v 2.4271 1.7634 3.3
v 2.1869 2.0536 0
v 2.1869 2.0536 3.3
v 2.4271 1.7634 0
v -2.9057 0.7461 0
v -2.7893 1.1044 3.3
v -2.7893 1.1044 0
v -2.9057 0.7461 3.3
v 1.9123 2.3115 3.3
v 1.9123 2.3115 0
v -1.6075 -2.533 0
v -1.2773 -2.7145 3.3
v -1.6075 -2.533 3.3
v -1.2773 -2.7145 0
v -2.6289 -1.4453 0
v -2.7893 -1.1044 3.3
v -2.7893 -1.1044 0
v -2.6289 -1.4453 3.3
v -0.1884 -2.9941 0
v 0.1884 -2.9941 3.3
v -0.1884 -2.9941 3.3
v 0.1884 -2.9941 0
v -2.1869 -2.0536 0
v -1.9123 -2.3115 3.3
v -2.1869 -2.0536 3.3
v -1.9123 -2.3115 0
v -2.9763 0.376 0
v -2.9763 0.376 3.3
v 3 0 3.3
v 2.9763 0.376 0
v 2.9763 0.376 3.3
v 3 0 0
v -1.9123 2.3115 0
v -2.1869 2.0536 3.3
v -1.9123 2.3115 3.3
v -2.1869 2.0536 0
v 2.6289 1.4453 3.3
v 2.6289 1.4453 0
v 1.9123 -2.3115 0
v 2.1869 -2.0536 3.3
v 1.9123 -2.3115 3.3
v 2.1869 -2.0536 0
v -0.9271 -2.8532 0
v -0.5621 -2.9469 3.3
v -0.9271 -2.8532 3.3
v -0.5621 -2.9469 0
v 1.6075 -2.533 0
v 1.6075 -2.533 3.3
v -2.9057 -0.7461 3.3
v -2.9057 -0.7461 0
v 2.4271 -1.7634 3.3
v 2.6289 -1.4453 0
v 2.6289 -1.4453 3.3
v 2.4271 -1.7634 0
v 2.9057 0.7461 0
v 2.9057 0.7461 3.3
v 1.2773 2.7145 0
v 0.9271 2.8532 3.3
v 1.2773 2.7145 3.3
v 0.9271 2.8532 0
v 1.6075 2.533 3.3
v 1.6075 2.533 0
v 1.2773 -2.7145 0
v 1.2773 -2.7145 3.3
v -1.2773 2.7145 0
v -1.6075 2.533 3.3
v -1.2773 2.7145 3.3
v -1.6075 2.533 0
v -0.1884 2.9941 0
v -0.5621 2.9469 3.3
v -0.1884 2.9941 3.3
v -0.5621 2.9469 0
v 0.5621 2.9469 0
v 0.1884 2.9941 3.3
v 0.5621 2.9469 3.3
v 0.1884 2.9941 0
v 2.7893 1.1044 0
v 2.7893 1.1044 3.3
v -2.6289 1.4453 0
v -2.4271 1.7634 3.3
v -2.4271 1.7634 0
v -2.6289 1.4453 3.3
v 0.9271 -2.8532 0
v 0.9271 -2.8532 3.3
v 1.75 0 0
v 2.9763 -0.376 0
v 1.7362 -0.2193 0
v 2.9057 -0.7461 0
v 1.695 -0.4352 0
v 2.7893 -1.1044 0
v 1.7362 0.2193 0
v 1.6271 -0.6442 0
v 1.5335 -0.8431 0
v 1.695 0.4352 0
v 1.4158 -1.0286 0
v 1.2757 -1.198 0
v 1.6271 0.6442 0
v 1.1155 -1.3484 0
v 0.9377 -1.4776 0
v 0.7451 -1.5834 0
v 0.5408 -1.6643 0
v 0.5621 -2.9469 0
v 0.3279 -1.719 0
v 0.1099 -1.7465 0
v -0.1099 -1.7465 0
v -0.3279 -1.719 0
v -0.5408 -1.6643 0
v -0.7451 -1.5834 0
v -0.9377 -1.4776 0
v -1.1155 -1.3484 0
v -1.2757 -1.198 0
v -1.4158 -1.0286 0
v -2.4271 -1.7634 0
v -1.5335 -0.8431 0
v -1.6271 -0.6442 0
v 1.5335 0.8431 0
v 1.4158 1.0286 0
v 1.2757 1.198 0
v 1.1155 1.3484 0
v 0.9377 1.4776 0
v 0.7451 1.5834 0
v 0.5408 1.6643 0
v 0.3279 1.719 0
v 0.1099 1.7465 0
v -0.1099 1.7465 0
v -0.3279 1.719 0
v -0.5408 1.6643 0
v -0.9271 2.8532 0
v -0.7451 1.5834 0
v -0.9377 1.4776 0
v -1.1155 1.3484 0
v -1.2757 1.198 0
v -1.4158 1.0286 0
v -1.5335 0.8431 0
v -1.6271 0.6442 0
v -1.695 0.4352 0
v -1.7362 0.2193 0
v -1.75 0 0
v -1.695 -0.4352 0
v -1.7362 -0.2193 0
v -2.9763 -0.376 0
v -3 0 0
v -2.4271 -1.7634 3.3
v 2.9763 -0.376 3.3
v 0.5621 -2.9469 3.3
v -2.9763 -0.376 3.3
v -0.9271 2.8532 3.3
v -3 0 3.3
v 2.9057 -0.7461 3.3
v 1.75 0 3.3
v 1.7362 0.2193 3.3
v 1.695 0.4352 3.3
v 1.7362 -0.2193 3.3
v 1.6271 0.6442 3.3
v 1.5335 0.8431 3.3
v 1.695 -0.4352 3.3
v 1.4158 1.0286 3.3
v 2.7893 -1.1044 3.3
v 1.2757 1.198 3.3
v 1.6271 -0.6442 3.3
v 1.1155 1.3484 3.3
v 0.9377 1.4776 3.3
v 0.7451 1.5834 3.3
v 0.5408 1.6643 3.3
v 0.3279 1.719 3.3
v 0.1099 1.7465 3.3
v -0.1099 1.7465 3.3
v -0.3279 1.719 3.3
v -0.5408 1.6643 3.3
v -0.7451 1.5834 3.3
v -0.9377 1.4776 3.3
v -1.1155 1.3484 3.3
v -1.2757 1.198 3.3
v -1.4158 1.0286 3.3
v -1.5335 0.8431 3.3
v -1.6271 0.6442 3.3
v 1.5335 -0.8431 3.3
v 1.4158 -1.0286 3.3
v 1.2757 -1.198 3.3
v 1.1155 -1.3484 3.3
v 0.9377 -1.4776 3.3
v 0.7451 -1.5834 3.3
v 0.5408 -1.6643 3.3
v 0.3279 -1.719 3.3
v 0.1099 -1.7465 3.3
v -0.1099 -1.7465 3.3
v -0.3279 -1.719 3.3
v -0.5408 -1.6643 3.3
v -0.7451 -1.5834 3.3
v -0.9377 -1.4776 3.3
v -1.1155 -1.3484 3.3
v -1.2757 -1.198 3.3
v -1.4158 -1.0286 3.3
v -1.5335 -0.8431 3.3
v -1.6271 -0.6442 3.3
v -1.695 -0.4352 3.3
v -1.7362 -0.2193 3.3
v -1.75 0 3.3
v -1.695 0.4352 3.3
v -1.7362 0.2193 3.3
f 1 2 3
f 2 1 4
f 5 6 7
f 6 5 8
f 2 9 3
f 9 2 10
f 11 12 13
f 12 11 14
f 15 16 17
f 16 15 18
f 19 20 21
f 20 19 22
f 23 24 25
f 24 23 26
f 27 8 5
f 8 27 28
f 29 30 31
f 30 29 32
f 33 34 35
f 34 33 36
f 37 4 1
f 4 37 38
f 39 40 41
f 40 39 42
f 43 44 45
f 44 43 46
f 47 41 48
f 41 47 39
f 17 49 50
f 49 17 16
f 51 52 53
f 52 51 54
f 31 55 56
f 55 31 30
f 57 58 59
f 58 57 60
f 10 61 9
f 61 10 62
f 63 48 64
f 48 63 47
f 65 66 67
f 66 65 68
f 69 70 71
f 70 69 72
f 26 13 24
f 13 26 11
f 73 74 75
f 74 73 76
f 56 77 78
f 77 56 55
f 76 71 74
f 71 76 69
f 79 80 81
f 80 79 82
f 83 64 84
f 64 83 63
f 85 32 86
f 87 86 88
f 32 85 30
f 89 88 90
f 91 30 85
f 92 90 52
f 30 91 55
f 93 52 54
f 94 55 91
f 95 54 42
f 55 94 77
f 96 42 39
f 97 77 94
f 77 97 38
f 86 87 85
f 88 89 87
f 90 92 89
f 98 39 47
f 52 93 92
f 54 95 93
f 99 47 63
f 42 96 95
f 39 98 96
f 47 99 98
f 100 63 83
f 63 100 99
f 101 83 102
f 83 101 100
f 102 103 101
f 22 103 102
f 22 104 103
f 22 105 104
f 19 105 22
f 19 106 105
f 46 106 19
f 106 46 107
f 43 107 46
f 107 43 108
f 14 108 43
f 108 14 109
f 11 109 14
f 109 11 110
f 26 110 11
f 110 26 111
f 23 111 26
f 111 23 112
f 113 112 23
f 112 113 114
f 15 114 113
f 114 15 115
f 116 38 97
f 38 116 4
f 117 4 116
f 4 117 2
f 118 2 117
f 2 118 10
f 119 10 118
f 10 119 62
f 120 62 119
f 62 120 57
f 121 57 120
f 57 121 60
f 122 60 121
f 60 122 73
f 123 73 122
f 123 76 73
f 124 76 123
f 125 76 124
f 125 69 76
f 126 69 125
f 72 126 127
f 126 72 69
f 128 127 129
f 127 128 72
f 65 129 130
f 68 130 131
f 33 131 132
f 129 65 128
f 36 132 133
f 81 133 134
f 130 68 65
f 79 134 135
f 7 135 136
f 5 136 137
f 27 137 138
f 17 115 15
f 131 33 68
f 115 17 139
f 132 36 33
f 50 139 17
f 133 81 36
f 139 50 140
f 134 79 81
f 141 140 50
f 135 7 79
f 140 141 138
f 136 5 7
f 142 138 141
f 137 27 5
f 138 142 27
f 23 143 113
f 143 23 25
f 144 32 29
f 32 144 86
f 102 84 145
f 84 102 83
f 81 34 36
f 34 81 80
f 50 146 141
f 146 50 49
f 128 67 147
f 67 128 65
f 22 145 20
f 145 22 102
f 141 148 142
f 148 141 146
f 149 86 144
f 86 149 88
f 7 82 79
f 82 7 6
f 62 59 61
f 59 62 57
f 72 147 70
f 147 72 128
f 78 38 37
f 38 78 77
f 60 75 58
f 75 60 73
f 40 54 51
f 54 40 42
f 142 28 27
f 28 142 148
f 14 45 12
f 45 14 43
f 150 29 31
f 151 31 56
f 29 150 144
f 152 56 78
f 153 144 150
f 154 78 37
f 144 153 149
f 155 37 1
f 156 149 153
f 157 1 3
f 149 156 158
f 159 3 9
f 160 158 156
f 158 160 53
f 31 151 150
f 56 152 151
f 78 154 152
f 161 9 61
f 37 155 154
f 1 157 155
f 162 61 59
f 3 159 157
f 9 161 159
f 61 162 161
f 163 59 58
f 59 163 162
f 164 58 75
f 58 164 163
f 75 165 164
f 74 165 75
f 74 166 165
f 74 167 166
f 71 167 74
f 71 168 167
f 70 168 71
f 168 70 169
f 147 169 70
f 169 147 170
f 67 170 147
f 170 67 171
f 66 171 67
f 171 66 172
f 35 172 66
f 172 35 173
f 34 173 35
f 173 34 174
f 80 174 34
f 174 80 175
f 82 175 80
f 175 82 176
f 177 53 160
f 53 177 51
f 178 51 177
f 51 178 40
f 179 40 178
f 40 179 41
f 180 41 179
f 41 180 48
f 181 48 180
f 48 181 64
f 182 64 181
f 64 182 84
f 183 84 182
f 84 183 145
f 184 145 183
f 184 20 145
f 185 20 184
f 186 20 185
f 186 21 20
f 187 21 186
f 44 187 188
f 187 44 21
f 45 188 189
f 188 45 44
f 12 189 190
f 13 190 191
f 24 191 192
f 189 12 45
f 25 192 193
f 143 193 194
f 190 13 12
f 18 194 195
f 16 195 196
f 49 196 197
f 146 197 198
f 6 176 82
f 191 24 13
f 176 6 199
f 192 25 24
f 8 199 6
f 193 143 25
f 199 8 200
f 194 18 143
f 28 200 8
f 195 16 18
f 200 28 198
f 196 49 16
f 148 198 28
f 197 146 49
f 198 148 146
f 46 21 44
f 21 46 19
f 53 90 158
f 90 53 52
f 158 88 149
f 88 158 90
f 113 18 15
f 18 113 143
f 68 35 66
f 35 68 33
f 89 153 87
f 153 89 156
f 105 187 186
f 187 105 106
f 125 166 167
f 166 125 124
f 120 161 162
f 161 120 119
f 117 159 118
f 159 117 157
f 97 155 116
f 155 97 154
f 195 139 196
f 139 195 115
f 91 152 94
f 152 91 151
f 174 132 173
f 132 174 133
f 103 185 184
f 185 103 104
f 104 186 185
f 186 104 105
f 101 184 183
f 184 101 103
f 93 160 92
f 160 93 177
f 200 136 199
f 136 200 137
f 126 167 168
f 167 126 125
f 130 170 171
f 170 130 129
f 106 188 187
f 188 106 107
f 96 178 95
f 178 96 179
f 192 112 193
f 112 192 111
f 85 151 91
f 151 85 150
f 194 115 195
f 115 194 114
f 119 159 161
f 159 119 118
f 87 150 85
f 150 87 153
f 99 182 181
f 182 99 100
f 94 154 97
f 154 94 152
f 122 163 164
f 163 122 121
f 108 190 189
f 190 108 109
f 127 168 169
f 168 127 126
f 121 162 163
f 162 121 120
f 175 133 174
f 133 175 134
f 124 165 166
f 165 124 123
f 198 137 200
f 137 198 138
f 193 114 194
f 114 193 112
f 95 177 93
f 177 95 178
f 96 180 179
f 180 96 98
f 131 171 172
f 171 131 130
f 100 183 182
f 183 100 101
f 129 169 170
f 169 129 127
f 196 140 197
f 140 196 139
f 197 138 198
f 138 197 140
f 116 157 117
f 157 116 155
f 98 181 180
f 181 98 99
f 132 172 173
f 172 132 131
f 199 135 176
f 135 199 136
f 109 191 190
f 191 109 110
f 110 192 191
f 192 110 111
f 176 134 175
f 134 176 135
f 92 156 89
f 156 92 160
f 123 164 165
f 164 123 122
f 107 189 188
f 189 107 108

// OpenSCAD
$fn=50;

difference(){
    cylinder(d=6, h=3.3);
    cylinder(d=3.5, h=3.3);
}
